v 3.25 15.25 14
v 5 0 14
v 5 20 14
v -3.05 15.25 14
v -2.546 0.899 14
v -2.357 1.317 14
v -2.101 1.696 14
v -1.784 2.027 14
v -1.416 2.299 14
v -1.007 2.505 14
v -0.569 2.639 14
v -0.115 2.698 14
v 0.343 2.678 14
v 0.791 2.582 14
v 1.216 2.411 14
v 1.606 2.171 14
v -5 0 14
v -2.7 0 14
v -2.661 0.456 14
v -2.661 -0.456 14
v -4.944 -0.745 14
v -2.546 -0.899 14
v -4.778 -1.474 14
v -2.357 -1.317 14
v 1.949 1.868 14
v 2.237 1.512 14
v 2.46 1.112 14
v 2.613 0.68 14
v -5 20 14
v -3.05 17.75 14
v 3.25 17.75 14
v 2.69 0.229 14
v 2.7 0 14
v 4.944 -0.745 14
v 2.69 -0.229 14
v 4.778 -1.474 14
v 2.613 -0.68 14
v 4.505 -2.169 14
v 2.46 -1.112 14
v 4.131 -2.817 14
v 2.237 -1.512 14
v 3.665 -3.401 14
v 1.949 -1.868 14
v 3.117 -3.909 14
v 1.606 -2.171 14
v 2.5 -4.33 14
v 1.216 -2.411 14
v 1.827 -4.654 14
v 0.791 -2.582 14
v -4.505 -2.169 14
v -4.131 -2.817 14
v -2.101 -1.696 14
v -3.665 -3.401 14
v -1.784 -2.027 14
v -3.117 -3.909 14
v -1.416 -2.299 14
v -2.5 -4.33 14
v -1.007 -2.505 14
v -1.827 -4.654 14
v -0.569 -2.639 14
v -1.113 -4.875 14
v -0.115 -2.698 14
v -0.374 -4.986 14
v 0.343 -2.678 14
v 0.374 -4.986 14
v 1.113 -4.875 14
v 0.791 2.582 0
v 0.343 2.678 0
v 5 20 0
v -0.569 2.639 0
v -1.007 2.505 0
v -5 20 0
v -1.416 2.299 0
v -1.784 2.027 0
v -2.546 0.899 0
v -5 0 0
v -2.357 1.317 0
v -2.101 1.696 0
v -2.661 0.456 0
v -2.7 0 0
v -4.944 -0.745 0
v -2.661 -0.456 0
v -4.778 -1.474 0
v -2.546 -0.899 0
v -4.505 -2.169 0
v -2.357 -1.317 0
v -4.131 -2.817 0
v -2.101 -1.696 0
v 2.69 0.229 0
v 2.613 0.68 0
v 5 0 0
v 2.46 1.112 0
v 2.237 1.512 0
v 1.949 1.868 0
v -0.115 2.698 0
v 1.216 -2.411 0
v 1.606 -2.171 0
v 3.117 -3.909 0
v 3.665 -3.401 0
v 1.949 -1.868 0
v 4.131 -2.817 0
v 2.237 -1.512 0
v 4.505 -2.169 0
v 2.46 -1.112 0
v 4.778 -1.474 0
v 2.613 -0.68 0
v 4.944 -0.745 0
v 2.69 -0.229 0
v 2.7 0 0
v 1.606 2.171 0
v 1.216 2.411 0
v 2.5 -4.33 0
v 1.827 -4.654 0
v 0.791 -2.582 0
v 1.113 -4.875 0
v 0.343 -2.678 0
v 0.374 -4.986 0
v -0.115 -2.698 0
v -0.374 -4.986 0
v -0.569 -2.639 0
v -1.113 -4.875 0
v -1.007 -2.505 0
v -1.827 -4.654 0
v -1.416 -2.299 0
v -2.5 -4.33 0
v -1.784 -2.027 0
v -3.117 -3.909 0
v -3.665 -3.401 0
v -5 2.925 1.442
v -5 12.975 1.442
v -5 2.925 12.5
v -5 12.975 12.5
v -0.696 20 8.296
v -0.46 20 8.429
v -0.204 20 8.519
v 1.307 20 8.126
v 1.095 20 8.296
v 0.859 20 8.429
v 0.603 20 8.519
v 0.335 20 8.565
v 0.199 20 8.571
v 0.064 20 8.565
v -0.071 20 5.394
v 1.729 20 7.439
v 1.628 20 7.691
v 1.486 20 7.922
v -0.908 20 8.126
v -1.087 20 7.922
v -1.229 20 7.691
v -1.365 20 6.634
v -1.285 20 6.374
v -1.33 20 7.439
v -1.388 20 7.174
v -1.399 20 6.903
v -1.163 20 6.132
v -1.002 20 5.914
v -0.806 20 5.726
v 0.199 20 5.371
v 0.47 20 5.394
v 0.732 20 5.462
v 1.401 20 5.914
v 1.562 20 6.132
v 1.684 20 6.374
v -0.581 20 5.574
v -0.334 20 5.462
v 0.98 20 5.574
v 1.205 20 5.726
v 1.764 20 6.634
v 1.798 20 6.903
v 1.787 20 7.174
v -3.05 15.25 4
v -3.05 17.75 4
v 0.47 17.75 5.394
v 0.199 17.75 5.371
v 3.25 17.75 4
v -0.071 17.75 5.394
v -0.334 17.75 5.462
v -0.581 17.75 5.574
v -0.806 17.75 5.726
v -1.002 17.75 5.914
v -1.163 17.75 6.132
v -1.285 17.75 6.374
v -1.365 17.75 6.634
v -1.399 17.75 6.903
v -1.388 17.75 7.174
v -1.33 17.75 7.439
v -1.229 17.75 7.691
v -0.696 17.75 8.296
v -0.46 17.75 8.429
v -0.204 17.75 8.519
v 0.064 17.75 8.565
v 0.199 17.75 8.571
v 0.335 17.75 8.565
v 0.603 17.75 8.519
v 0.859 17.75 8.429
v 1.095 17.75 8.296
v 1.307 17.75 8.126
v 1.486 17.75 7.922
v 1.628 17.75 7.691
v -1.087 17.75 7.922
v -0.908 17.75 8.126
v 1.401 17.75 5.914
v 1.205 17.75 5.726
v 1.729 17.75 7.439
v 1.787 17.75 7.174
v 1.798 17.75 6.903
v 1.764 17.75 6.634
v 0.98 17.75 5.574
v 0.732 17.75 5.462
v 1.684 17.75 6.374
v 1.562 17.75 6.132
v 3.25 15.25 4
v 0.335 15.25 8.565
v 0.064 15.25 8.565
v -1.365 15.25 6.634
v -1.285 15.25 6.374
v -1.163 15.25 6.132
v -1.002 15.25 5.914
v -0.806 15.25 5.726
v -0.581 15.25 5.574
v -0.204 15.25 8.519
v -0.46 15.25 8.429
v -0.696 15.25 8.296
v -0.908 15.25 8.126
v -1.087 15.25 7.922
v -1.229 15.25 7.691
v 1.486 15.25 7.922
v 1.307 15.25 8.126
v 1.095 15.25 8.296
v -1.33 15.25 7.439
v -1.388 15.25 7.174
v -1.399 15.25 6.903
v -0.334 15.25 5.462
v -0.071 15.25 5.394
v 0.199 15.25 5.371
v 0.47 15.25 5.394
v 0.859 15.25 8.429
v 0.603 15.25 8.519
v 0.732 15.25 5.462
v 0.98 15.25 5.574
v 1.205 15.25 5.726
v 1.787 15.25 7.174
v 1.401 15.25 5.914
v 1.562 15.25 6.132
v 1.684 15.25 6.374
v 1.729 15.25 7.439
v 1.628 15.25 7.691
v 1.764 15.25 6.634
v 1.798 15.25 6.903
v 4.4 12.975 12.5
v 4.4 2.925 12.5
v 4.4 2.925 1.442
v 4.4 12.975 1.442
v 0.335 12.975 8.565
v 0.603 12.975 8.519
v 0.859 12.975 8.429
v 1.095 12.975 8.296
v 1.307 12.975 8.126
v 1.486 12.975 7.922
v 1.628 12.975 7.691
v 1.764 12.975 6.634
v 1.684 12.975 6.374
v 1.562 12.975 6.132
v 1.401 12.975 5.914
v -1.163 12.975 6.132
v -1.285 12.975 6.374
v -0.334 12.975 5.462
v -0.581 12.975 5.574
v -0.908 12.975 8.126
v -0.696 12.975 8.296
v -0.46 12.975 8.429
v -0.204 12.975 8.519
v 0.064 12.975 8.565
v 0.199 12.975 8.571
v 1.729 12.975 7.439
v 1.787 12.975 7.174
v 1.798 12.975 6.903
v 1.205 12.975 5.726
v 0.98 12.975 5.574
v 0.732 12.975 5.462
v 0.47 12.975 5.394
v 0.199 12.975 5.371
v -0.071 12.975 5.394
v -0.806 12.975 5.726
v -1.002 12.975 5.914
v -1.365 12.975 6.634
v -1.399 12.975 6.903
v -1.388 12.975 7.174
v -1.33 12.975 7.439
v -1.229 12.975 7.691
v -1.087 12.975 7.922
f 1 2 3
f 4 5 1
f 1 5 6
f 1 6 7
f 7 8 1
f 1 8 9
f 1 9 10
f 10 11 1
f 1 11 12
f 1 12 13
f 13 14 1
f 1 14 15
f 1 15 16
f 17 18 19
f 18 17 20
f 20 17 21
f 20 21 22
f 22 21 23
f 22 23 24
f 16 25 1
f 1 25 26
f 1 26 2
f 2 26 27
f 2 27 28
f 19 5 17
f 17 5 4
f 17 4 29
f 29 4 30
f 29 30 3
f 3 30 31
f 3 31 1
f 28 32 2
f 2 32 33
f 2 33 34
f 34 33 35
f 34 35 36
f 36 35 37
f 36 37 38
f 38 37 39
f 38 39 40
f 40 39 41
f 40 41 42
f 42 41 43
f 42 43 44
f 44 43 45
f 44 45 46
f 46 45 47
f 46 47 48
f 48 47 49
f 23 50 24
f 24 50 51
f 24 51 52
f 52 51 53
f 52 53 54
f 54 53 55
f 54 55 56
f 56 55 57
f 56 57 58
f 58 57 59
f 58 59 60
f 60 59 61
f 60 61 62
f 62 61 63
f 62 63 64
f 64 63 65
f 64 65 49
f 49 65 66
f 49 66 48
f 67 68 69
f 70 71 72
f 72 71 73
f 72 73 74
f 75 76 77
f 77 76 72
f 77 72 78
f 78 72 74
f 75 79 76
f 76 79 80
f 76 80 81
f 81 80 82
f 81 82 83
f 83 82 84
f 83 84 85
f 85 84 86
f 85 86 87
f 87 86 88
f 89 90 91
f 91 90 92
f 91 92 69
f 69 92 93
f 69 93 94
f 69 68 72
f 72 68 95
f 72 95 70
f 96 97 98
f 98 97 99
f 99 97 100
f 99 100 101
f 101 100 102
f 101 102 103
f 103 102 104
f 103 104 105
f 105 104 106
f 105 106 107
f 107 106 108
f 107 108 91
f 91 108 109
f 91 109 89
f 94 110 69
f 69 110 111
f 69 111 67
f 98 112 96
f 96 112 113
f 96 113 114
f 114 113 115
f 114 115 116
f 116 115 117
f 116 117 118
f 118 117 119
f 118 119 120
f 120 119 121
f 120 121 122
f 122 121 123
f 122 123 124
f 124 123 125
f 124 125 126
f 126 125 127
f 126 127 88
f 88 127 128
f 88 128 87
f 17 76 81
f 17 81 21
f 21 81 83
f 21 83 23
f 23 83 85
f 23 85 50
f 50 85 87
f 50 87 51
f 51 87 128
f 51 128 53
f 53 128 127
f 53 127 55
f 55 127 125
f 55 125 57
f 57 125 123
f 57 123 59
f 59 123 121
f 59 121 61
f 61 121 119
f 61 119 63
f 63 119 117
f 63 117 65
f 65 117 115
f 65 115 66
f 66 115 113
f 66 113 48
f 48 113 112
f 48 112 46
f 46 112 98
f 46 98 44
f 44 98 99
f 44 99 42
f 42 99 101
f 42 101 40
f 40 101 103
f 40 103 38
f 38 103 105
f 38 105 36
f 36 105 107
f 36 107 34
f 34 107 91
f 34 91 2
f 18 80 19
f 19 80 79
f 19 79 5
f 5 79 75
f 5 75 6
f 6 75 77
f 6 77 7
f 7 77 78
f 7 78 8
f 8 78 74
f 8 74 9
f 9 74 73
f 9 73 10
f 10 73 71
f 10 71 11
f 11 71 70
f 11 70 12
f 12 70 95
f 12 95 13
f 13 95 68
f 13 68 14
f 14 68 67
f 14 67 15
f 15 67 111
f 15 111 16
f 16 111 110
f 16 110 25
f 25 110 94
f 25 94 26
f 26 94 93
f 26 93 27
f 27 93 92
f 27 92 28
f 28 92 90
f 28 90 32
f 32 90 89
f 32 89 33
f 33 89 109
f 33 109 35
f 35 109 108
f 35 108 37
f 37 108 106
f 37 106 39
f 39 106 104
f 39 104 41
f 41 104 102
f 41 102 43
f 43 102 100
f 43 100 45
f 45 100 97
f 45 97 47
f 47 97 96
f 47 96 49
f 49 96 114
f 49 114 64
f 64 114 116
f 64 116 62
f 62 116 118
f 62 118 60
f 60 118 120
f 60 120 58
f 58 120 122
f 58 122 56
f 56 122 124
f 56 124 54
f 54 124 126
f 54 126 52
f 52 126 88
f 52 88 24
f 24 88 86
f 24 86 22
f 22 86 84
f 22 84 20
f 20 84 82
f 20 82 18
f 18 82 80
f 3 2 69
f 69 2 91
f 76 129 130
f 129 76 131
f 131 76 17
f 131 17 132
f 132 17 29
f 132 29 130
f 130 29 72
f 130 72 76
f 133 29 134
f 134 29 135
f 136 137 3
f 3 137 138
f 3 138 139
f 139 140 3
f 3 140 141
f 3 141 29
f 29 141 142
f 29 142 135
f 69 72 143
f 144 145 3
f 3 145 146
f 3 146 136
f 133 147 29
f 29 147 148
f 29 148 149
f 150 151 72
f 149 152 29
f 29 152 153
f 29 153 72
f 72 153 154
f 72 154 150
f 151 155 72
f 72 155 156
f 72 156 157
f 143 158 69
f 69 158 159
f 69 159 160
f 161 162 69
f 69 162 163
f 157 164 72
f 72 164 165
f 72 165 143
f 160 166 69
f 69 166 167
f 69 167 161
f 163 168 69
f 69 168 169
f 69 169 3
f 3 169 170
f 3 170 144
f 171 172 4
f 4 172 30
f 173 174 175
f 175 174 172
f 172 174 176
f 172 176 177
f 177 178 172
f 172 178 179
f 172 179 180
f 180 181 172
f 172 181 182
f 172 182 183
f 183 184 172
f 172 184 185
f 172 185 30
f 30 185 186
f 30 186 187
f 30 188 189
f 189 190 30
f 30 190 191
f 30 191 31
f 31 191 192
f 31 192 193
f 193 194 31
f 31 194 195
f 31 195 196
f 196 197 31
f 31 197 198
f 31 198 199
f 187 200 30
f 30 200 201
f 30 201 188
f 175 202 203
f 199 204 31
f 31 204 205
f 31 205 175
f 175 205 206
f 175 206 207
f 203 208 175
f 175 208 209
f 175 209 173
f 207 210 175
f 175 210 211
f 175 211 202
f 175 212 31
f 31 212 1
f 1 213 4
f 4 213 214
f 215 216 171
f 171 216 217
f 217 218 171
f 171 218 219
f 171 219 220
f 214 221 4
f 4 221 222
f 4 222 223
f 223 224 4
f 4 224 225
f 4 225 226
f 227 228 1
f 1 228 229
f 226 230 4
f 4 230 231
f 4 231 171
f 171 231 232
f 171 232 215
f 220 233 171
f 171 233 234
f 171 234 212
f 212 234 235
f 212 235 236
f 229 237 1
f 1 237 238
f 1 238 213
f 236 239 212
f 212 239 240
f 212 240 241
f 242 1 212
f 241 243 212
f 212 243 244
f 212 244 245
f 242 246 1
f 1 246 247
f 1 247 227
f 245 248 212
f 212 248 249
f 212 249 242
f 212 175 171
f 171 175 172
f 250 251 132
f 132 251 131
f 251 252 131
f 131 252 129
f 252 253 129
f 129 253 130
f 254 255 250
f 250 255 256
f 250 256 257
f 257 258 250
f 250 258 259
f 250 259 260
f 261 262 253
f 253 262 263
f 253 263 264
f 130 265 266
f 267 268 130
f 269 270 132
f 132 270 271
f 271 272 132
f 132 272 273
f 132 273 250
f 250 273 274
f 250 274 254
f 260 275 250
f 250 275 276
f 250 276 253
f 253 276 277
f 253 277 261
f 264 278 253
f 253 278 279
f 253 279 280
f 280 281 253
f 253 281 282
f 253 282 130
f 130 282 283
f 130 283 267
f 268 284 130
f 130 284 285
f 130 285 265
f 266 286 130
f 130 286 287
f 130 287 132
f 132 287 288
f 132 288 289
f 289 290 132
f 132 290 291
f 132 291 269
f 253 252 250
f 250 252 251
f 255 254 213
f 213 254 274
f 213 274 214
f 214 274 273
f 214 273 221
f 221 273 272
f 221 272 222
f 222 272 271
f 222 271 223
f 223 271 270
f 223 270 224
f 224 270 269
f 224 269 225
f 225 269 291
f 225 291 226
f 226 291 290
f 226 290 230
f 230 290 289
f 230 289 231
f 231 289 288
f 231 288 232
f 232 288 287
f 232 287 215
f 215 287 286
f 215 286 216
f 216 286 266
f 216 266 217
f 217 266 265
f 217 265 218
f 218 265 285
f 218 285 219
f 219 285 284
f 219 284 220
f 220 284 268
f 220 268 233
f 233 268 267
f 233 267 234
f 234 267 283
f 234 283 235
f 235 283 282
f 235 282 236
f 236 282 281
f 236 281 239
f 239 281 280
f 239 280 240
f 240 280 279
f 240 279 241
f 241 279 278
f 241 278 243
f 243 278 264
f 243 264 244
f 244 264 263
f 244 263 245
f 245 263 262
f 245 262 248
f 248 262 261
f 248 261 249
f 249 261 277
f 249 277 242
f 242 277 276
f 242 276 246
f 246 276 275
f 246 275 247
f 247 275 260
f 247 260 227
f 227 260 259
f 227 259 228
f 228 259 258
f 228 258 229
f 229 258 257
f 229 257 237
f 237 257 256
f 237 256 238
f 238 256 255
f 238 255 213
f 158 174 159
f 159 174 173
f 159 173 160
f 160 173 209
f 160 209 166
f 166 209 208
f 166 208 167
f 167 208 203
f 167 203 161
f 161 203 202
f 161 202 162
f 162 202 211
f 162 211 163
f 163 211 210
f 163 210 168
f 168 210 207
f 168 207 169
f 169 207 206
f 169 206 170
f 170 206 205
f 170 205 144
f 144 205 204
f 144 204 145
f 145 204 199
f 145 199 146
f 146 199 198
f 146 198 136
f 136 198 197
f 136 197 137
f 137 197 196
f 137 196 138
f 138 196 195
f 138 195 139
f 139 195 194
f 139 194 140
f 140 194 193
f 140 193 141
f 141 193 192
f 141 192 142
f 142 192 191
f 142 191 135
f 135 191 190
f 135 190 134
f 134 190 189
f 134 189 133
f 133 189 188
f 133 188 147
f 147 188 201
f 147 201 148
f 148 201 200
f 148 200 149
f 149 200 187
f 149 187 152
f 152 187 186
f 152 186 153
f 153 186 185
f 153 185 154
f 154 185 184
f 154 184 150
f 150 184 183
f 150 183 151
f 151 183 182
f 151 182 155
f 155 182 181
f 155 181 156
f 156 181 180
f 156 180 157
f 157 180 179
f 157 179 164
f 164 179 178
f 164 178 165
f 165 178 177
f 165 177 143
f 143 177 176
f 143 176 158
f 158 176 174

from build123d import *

# Parameters (mm, degrees)
SKETCH_1_R          = 5
SKETCH_1_R_2        = 2.7
EXTRUDE_1_DEPTH     = 14
EXTRUDE_START       = -14
EXTRUDE_2_DEPTH     = 14
SKETCH_5_W          = 6.3
SKETCH_5_H          = 2.5
CUT_EXTRUDE_3_DEPTH = 10
SKETCH_10_W         = 11.05826702
SKETCH_10_H         = 10.05
CUT_EXTRUDE_5_DEPTH = 9.4
SKETCH_12_R         = 1.6
CUT_EXTRUDE_7_DEPTH = 23.639691363


with BuildPart() as part:
    # Эскиз1 → Бобышка-Вытянуть1 (new body)
    with BuildSketch(Plane.XY):
        Circle(SKETCH_1_R)
        Circle(SKETCH_1_R_2, mode=Mode.SUBTRACT)
    extrude(amount=EXTRUDE_1_DEPTH)

    # Эскиз2 → Бобышка-Вытянуть2 (add)
    with BuildSketch(Plane.XY.offset(14).offset(EXTRUDE_START)):
        with BuildLine():
            Line((-5, 0), (-2.7, 0))
            ThreePointArc((-2.7, 0), (0, 2.7), (2.7, 0))
            Line((2.7, 0), (5, 0))
            Line((5, 0), (5, 20))
            Line((5, 20), (-5, 20))
            Line((-5, 20), (-5, 0))
        make_face()
    extrude(amount=EXTRUDE_2_DEPTH)

    # Эскиз5 → Вырез-Вытянуть3 (cut)
    with BuildSketch(Plane.XY.offset(14)):
        with Locations((0.1, 16.5)):
            Rectangle(SKETCH_5_W, SKETCH_5_H)
    extrude(amount=-CUT_EXTRUDE_3_DEPTH, mode=Mode.SUBTRACT)

    # Эскиз10 → Вырез-Вытянуть5 (cut)
    with BuildSketch(Plane.ZY.offset(5)):
        with Locations((6.97086649, 7.95)):
            Rectangle(SKETCH_10_W, SKETCH_10_H)
    extrude(amount=-CUT_EXTRUDE_5_DEPTH, mode=Mode.SUBTRACT)

    # Эскиз12 → Вырез-Вытянуть7 (cut, through all)
    with BuildSketch(Plane(origin=(0, 2.925, 0), x_dir=(1, 0, 0), z_dir=(0, 1, 0))):
        with Locations(Location((0.19946897, -6.97086649, 0), (0, 0, 90))):
            Circle(SKETCH_12_R)
    extrude(amount=CUT_EXTRUDE_7_DEPTH, mode=Mode.SUBTRACT)


solid = part.part
